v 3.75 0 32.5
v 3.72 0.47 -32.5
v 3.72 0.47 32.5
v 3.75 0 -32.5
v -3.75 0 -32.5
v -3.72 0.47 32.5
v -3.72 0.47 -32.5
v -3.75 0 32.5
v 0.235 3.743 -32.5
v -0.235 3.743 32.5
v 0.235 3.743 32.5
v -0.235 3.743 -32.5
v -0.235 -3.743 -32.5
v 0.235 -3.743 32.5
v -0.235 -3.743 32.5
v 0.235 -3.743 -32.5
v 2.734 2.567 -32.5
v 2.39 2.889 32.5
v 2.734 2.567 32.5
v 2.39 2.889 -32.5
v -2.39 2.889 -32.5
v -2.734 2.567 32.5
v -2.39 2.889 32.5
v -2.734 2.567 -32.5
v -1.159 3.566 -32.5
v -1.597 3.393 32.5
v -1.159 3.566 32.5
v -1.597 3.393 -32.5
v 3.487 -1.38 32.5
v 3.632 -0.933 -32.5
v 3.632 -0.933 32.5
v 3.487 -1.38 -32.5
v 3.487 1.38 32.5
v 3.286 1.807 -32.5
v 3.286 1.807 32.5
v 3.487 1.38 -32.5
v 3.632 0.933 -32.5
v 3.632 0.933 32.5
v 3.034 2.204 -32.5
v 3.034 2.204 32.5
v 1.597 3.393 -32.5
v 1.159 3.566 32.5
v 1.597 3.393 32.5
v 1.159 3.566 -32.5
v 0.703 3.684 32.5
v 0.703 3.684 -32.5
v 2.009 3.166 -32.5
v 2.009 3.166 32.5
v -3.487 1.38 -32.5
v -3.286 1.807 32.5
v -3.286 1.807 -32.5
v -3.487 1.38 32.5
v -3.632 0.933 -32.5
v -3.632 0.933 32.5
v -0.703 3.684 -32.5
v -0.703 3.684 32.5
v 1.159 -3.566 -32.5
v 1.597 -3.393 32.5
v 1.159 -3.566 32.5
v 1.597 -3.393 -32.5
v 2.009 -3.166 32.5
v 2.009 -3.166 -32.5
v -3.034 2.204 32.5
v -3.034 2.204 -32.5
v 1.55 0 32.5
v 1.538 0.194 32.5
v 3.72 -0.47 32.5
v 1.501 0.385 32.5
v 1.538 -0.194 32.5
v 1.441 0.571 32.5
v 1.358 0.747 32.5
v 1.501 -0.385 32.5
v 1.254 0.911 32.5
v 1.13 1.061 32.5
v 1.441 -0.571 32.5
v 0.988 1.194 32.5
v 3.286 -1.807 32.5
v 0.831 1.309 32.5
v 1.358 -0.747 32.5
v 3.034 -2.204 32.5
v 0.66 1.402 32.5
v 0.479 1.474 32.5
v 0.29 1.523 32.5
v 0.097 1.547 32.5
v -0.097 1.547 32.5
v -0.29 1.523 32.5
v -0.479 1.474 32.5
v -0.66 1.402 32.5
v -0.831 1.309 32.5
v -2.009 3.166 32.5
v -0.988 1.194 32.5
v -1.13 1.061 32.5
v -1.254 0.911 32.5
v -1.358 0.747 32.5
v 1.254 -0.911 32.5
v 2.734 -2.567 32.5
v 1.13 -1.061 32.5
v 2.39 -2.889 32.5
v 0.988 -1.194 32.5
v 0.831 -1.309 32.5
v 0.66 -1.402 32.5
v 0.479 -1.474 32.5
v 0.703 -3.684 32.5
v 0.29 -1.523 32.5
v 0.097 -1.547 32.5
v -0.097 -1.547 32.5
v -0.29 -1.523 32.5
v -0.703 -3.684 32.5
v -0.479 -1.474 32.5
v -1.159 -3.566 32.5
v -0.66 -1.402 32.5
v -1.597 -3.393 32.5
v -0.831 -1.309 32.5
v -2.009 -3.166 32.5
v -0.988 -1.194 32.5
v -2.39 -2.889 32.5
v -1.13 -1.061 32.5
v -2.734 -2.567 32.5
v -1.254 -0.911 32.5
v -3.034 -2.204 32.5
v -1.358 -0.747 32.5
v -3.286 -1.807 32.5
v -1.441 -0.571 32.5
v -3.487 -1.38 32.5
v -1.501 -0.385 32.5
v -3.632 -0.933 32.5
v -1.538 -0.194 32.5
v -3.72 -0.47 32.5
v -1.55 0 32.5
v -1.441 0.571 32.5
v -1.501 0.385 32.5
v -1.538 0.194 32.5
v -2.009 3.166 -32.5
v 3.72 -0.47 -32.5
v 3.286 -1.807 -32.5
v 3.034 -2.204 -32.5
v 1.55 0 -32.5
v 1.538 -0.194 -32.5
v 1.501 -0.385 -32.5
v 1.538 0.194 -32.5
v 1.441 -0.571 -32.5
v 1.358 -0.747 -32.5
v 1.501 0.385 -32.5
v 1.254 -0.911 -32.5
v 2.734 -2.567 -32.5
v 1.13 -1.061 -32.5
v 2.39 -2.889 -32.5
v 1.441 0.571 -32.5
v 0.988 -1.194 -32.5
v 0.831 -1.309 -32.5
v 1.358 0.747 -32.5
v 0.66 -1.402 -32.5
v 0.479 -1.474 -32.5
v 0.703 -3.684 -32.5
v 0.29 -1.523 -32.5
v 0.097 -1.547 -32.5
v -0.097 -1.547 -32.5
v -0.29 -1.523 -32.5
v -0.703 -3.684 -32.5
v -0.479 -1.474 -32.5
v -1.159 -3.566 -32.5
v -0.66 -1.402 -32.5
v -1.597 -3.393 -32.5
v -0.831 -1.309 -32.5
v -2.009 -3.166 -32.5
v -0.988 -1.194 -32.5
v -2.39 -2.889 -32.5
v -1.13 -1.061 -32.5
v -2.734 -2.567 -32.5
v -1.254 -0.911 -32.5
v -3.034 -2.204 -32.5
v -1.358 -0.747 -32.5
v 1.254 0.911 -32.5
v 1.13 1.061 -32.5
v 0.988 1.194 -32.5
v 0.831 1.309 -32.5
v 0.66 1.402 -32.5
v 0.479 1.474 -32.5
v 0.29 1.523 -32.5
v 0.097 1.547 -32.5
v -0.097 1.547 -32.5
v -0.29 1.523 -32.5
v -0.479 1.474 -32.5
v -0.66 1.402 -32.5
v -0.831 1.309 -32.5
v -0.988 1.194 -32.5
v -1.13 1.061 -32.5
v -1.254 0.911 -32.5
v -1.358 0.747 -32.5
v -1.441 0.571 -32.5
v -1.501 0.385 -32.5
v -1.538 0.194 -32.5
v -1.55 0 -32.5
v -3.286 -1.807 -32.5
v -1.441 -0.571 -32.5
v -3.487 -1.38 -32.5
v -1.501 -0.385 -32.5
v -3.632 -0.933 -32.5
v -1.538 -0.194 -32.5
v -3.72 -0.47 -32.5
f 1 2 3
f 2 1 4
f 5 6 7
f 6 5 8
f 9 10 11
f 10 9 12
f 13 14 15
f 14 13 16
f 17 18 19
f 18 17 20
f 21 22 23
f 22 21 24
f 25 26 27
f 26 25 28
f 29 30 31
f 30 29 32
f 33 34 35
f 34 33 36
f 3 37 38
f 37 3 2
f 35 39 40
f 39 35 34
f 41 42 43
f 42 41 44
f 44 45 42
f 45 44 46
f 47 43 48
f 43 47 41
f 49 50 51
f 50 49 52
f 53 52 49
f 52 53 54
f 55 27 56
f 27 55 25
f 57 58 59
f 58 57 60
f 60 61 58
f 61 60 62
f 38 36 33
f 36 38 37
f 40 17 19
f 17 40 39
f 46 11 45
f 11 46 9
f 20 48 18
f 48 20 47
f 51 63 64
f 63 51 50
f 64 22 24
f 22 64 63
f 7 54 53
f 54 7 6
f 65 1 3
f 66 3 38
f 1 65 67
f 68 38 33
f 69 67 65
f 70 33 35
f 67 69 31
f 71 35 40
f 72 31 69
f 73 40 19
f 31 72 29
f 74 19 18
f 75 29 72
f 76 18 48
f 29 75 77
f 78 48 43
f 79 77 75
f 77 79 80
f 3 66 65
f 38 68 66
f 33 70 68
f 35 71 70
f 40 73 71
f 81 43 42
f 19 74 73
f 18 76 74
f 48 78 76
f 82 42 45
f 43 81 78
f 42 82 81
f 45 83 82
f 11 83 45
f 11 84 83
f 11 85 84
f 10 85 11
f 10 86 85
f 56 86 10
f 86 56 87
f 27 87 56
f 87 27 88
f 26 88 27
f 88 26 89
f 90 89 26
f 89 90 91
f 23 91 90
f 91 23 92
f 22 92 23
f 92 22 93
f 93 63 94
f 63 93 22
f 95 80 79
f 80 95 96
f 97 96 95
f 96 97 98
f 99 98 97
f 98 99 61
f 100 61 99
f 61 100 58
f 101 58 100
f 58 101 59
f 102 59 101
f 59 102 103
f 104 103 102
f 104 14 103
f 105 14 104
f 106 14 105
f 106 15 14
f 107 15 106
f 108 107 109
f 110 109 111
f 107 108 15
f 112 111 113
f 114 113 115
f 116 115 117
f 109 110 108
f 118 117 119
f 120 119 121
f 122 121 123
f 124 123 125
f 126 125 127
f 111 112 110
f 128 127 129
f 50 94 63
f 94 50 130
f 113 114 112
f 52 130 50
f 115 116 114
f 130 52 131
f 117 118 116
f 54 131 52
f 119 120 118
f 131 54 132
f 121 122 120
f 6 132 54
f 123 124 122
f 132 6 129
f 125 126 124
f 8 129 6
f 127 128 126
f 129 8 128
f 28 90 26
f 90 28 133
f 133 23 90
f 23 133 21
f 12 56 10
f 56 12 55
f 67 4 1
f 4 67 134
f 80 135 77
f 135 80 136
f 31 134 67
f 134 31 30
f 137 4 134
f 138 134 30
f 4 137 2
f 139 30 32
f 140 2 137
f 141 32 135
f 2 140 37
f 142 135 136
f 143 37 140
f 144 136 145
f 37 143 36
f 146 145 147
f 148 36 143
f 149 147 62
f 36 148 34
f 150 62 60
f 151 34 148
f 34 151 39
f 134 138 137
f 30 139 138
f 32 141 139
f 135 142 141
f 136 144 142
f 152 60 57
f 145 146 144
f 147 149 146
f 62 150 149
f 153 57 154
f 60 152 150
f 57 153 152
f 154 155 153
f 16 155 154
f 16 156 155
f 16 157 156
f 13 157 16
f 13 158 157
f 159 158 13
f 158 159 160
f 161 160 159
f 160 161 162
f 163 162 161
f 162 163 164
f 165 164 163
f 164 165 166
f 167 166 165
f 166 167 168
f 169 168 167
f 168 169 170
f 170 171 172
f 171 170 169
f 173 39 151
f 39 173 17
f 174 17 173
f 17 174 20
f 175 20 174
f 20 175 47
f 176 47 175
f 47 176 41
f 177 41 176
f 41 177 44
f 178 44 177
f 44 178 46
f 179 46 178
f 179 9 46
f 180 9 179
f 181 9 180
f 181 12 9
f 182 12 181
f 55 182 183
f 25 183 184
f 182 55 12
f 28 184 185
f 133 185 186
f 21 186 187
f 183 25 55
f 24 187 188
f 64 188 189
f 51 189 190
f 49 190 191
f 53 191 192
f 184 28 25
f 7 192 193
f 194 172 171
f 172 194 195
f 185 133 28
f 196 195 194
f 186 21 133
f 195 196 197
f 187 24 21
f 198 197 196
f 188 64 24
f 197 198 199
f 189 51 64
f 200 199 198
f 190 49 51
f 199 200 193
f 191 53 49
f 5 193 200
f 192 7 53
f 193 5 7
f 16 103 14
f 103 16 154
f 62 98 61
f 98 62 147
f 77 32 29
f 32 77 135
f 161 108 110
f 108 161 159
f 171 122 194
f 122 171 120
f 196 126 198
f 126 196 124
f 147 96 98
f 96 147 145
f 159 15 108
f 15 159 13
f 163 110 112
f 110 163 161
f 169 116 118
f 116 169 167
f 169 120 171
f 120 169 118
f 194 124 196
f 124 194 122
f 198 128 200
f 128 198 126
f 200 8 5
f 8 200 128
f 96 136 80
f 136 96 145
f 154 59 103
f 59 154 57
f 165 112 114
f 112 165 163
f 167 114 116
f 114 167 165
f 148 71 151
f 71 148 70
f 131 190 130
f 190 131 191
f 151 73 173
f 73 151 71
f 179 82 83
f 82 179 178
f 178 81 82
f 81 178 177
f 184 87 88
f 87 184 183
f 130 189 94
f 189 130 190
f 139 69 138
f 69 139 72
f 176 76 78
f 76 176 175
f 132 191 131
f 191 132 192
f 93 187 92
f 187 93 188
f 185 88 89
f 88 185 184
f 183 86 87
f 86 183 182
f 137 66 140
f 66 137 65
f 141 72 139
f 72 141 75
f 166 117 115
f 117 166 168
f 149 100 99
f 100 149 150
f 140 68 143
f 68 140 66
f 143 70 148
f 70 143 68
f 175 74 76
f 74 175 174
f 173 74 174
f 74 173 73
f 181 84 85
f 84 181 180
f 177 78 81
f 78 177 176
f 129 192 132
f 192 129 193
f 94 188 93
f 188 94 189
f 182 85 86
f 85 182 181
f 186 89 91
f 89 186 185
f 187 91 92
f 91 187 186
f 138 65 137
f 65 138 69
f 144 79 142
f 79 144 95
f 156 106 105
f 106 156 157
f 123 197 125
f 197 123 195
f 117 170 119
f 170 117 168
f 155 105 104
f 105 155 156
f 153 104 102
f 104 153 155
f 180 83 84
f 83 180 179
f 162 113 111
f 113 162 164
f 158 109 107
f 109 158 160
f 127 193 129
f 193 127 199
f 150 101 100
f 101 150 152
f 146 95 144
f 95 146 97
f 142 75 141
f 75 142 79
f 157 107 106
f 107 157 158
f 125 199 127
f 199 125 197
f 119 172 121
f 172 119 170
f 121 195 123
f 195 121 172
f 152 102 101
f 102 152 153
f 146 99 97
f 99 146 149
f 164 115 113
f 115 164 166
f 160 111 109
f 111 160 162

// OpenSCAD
$fn = 50;


difference() {
	union() {
		translate(v = [0, 0, -32.5000000000]) {
			cylinder(h = 65, r = 3.7500000000);
		}
	}
	union() {
		translate(v = [0, 0, -100.0000000000]) {
			cylinder(h = 200, r = 1.5500000000);
		}
	}
}
